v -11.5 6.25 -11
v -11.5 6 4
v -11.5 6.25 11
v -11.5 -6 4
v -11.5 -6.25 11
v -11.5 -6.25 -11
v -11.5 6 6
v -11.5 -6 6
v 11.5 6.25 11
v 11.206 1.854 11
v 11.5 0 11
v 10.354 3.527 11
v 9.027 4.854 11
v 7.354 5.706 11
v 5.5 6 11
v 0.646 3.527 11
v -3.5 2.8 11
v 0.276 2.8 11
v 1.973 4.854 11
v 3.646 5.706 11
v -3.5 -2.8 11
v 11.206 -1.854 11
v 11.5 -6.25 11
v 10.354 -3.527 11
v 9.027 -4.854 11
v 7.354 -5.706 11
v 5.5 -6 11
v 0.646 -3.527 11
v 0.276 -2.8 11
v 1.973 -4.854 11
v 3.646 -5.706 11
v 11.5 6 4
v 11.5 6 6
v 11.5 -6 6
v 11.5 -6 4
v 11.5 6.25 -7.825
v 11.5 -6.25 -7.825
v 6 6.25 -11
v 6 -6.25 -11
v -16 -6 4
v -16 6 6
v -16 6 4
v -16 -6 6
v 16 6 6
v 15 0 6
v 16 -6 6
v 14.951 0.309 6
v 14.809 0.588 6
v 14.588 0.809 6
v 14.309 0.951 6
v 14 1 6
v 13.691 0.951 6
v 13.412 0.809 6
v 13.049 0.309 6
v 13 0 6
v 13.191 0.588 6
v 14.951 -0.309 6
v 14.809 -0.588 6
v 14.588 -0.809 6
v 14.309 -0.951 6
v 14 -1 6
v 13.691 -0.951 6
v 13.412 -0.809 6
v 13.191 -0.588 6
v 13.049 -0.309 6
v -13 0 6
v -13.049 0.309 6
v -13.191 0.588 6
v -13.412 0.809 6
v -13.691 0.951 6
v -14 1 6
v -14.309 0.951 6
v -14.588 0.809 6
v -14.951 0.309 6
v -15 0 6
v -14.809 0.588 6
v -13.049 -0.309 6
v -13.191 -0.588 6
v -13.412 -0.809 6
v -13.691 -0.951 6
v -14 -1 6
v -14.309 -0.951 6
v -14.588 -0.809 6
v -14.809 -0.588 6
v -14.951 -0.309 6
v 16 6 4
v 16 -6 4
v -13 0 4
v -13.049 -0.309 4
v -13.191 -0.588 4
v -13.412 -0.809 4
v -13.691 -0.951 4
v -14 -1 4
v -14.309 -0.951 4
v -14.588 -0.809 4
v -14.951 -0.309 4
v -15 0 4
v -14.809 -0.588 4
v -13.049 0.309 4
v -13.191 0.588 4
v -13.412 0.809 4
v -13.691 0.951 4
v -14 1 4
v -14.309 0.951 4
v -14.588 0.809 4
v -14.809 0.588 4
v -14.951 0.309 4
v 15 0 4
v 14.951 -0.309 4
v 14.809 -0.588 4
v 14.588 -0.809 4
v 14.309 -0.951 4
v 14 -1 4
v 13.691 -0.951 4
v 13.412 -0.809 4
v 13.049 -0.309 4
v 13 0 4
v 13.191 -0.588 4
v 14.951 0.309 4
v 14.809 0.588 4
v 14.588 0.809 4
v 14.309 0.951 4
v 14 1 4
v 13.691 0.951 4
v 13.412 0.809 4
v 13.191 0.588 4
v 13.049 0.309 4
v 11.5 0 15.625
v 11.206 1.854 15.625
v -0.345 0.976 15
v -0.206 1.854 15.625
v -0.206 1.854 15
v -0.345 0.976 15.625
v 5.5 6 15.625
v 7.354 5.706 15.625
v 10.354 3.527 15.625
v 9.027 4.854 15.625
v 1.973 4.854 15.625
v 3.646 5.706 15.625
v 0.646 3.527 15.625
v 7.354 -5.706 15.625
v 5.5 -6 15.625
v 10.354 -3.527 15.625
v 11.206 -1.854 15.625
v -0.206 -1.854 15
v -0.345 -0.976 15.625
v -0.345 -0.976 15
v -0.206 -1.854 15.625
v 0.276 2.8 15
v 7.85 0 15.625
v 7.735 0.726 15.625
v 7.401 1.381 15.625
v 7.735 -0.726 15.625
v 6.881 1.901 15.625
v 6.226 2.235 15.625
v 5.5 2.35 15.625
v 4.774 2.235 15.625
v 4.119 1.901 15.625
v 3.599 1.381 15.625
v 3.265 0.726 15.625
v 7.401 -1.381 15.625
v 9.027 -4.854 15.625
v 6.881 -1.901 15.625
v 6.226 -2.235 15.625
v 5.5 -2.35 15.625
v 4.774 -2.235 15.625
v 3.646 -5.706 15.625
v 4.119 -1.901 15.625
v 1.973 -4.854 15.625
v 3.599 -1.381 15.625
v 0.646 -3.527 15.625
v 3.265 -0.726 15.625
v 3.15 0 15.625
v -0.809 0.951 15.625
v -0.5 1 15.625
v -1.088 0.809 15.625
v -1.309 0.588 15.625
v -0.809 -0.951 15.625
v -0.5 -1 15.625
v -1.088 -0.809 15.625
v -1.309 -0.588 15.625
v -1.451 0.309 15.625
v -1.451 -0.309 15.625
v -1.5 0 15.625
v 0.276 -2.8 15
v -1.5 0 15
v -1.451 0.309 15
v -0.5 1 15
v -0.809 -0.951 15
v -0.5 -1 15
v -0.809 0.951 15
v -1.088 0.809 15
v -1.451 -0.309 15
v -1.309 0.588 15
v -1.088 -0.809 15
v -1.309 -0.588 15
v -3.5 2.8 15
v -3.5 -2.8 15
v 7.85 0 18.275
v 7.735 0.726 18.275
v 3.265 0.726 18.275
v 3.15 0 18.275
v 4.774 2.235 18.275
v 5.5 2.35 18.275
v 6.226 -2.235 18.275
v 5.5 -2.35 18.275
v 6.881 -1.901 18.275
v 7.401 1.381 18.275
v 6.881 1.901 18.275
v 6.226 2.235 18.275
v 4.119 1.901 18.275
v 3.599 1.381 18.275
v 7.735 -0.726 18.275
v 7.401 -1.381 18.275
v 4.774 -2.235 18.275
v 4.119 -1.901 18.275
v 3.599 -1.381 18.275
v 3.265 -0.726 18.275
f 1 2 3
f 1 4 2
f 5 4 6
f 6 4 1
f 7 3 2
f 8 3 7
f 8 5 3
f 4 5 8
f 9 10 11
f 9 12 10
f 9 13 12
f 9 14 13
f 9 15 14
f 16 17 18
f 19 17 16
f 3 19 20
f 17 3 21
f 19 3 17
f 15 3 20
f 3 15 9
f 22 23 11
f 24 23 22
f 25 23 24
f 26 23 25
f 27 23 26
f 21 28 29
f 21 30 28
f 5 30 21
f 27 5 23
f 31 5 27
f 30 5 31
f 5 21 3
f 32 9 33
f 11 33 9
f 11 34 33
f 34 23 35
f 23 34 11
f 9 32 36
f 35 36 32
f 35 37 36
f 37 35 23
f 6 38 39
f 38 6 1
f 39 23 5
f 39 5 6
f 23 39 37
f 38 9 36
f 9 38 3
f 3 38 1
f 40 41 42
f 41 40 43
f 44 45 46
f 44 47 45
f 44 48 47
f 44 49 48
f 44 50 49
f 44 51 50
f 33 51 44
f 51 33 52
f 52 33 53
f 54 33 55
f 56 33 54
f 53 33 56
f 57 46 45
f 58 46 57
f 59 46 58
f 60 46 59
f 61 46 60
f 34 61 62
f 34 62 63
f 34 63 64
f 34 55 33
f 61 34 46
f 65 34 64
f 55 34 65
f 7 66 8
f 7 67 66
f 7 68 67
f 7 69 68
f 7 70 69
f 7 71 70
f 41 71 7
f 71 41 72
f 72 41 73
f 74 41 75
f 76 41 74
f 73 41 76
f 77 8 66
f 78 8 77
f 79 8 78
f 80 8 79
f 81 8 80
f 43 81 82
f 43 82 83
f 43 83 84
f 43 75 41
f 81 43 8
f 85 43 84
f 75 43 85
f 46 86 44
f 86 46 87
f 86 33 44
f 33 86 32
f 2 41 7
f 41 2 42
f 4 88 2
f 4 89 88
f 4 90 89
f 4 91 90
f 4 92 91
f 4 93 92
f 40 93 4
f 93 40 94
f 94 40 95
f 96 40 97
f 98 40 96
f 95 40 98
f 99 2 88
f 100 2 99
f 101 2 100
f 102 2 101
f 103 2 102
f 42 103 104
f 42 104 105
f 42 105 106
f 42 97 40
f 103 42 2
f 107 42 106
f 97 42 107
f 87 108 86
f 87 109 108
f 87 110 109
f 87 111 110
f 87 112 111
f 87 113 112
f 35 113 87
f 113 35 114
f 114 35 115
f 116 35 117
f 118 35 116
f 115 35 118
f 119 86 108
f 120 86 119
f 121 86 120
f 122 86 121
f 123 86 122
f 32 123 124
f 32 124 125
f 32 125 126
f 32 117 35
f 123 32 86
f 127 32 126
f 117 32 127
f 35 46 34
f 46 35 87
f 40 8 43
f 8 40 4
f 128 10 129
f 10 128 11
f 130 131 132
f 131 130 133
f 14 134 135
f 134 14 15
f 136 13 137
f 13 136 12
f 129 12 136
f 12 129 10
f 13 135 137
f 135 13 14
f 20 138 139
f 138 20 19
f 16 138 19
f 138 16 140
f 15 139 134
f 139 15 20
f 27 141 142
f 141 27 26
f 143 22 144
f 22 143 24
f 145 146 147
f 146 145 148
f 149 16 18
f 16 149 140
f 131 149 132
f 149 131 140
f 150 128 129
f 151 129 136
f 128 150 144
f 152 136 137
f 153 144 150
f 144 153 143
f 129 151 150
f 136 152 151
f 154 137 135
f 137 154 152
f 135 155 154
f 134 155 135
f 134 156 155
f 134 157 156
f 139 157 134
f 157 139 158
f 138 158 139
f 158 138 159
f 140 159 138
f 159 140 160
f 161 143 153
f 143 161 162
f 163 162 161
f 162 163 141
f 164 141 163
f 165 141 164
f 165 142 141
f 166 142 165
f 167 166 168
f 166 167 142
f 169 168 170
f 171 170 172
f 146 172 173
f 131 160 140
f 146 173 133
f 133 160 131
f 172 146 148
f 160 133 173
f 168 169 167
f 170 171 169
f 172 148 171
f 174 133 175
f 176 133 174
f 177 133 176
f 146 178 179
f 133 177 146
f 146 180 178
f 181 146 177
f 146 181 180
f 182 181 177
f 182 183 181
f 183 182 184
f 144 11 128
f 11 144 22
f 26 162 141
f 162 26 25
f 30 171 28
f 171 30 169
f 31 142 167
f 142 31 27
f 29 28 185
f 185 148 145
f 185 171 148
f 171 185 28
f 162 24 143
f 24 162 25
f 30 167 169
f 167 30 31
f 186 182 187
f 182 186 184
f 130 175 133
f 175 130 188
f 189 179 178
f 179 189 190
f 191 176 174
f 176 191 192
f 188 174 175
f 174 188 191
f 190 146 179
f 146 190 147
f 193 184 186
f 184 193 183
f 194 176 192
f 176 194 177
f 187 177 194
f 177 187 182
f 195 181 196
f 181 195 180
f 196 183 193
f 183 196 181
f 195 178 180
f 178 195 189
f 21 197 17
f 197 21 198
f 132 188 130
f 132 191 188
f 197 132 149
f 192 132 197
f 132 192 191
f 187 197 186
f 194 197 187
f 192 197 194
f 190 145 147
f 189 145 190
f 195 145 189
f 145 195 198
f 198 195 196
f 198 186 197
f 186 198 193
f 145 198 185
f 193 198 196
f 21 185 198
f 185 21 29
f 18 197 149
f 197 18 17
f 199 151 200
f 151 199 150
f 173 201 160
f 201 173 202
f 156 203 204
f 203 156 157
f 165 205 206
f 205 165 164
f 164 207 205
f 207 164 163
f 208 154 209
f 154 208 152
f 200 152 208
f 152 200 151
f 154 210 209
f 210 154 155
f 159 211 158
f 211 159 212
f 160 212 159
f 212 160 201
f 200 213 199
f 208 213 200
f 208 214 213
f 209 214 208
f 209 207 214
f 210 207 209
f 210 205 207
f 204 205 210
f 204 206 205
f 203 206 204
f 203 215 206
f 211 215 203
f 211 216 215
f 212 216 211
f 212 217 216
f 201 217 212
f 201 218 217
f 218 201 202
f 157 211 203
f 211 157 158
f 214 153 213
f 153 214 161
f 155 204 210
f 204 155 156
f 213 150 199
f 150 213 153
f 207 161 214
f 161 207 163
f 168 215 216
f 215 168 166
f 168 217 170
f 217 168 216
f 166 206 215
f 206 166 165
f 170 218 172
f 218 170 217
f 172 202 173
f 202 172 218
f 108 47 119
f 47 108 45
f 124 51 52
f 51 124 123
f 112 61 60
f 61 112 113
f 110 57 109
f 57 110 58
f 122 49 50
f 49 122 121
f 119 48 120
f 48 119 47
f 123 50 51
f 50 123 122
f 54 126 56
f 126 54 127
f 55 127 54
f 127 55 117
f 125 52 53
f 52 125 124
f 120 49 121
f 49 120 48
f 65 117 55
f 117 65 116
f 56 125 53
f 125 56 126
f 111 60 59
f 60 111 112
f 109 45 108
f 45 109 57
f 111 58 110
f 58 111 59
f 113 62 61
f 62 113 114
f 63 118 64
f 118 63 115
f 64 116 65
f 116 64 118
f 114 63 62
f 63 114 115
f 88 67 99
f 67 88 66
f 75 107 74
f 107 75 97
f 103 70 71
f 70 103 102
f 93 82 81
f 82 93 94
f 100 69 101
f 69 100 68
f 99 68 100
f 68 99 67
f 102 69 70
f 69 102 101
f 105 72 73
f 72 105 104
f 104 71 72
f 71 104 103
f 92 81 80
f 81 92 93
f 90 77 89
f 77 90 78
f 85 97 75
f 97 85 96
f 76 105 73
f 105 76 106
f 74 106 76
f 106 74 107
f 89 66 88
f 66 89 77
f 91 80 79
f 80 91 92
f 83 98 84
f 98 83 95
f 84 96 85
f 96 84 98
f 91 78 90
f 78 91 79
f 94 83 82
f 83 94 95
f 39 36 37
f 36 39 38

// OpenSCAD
9g_motor();

module 9g_motor(){
	difference(){			
		union(){
			color("steel blue") cube([23,12.5,22], center=true);
			color("steel blue") translate([0,0,5]) cube([32,12,2], center=true);
			color("steel blue") translate([5.5,0,2.75]) cylinder(r=6, h=25.75, $fn=20, center=true);
			color("steel blue") translate([-.5,0,2.75]) cylinder(r=1, h=25.75, $fn=20, center=true);
			color("steel blue") translate([-1,0,2.75]) cube([5,5.6,24.5], center=true);		
			color("white") translate([5.5,0,3.65]) cylinder(r=2.35, h=29.25, $fn=20, center=true);				
		}
		translate([10,0,-11]) rotate([0,-30,0]) cube([8,13,4], center=true);
		for ( hole = [14,-14] ){
			translate([hole,0,5]) cylinder(r=1, h=4, $fn=20, center=true);
		}	
	}
}
